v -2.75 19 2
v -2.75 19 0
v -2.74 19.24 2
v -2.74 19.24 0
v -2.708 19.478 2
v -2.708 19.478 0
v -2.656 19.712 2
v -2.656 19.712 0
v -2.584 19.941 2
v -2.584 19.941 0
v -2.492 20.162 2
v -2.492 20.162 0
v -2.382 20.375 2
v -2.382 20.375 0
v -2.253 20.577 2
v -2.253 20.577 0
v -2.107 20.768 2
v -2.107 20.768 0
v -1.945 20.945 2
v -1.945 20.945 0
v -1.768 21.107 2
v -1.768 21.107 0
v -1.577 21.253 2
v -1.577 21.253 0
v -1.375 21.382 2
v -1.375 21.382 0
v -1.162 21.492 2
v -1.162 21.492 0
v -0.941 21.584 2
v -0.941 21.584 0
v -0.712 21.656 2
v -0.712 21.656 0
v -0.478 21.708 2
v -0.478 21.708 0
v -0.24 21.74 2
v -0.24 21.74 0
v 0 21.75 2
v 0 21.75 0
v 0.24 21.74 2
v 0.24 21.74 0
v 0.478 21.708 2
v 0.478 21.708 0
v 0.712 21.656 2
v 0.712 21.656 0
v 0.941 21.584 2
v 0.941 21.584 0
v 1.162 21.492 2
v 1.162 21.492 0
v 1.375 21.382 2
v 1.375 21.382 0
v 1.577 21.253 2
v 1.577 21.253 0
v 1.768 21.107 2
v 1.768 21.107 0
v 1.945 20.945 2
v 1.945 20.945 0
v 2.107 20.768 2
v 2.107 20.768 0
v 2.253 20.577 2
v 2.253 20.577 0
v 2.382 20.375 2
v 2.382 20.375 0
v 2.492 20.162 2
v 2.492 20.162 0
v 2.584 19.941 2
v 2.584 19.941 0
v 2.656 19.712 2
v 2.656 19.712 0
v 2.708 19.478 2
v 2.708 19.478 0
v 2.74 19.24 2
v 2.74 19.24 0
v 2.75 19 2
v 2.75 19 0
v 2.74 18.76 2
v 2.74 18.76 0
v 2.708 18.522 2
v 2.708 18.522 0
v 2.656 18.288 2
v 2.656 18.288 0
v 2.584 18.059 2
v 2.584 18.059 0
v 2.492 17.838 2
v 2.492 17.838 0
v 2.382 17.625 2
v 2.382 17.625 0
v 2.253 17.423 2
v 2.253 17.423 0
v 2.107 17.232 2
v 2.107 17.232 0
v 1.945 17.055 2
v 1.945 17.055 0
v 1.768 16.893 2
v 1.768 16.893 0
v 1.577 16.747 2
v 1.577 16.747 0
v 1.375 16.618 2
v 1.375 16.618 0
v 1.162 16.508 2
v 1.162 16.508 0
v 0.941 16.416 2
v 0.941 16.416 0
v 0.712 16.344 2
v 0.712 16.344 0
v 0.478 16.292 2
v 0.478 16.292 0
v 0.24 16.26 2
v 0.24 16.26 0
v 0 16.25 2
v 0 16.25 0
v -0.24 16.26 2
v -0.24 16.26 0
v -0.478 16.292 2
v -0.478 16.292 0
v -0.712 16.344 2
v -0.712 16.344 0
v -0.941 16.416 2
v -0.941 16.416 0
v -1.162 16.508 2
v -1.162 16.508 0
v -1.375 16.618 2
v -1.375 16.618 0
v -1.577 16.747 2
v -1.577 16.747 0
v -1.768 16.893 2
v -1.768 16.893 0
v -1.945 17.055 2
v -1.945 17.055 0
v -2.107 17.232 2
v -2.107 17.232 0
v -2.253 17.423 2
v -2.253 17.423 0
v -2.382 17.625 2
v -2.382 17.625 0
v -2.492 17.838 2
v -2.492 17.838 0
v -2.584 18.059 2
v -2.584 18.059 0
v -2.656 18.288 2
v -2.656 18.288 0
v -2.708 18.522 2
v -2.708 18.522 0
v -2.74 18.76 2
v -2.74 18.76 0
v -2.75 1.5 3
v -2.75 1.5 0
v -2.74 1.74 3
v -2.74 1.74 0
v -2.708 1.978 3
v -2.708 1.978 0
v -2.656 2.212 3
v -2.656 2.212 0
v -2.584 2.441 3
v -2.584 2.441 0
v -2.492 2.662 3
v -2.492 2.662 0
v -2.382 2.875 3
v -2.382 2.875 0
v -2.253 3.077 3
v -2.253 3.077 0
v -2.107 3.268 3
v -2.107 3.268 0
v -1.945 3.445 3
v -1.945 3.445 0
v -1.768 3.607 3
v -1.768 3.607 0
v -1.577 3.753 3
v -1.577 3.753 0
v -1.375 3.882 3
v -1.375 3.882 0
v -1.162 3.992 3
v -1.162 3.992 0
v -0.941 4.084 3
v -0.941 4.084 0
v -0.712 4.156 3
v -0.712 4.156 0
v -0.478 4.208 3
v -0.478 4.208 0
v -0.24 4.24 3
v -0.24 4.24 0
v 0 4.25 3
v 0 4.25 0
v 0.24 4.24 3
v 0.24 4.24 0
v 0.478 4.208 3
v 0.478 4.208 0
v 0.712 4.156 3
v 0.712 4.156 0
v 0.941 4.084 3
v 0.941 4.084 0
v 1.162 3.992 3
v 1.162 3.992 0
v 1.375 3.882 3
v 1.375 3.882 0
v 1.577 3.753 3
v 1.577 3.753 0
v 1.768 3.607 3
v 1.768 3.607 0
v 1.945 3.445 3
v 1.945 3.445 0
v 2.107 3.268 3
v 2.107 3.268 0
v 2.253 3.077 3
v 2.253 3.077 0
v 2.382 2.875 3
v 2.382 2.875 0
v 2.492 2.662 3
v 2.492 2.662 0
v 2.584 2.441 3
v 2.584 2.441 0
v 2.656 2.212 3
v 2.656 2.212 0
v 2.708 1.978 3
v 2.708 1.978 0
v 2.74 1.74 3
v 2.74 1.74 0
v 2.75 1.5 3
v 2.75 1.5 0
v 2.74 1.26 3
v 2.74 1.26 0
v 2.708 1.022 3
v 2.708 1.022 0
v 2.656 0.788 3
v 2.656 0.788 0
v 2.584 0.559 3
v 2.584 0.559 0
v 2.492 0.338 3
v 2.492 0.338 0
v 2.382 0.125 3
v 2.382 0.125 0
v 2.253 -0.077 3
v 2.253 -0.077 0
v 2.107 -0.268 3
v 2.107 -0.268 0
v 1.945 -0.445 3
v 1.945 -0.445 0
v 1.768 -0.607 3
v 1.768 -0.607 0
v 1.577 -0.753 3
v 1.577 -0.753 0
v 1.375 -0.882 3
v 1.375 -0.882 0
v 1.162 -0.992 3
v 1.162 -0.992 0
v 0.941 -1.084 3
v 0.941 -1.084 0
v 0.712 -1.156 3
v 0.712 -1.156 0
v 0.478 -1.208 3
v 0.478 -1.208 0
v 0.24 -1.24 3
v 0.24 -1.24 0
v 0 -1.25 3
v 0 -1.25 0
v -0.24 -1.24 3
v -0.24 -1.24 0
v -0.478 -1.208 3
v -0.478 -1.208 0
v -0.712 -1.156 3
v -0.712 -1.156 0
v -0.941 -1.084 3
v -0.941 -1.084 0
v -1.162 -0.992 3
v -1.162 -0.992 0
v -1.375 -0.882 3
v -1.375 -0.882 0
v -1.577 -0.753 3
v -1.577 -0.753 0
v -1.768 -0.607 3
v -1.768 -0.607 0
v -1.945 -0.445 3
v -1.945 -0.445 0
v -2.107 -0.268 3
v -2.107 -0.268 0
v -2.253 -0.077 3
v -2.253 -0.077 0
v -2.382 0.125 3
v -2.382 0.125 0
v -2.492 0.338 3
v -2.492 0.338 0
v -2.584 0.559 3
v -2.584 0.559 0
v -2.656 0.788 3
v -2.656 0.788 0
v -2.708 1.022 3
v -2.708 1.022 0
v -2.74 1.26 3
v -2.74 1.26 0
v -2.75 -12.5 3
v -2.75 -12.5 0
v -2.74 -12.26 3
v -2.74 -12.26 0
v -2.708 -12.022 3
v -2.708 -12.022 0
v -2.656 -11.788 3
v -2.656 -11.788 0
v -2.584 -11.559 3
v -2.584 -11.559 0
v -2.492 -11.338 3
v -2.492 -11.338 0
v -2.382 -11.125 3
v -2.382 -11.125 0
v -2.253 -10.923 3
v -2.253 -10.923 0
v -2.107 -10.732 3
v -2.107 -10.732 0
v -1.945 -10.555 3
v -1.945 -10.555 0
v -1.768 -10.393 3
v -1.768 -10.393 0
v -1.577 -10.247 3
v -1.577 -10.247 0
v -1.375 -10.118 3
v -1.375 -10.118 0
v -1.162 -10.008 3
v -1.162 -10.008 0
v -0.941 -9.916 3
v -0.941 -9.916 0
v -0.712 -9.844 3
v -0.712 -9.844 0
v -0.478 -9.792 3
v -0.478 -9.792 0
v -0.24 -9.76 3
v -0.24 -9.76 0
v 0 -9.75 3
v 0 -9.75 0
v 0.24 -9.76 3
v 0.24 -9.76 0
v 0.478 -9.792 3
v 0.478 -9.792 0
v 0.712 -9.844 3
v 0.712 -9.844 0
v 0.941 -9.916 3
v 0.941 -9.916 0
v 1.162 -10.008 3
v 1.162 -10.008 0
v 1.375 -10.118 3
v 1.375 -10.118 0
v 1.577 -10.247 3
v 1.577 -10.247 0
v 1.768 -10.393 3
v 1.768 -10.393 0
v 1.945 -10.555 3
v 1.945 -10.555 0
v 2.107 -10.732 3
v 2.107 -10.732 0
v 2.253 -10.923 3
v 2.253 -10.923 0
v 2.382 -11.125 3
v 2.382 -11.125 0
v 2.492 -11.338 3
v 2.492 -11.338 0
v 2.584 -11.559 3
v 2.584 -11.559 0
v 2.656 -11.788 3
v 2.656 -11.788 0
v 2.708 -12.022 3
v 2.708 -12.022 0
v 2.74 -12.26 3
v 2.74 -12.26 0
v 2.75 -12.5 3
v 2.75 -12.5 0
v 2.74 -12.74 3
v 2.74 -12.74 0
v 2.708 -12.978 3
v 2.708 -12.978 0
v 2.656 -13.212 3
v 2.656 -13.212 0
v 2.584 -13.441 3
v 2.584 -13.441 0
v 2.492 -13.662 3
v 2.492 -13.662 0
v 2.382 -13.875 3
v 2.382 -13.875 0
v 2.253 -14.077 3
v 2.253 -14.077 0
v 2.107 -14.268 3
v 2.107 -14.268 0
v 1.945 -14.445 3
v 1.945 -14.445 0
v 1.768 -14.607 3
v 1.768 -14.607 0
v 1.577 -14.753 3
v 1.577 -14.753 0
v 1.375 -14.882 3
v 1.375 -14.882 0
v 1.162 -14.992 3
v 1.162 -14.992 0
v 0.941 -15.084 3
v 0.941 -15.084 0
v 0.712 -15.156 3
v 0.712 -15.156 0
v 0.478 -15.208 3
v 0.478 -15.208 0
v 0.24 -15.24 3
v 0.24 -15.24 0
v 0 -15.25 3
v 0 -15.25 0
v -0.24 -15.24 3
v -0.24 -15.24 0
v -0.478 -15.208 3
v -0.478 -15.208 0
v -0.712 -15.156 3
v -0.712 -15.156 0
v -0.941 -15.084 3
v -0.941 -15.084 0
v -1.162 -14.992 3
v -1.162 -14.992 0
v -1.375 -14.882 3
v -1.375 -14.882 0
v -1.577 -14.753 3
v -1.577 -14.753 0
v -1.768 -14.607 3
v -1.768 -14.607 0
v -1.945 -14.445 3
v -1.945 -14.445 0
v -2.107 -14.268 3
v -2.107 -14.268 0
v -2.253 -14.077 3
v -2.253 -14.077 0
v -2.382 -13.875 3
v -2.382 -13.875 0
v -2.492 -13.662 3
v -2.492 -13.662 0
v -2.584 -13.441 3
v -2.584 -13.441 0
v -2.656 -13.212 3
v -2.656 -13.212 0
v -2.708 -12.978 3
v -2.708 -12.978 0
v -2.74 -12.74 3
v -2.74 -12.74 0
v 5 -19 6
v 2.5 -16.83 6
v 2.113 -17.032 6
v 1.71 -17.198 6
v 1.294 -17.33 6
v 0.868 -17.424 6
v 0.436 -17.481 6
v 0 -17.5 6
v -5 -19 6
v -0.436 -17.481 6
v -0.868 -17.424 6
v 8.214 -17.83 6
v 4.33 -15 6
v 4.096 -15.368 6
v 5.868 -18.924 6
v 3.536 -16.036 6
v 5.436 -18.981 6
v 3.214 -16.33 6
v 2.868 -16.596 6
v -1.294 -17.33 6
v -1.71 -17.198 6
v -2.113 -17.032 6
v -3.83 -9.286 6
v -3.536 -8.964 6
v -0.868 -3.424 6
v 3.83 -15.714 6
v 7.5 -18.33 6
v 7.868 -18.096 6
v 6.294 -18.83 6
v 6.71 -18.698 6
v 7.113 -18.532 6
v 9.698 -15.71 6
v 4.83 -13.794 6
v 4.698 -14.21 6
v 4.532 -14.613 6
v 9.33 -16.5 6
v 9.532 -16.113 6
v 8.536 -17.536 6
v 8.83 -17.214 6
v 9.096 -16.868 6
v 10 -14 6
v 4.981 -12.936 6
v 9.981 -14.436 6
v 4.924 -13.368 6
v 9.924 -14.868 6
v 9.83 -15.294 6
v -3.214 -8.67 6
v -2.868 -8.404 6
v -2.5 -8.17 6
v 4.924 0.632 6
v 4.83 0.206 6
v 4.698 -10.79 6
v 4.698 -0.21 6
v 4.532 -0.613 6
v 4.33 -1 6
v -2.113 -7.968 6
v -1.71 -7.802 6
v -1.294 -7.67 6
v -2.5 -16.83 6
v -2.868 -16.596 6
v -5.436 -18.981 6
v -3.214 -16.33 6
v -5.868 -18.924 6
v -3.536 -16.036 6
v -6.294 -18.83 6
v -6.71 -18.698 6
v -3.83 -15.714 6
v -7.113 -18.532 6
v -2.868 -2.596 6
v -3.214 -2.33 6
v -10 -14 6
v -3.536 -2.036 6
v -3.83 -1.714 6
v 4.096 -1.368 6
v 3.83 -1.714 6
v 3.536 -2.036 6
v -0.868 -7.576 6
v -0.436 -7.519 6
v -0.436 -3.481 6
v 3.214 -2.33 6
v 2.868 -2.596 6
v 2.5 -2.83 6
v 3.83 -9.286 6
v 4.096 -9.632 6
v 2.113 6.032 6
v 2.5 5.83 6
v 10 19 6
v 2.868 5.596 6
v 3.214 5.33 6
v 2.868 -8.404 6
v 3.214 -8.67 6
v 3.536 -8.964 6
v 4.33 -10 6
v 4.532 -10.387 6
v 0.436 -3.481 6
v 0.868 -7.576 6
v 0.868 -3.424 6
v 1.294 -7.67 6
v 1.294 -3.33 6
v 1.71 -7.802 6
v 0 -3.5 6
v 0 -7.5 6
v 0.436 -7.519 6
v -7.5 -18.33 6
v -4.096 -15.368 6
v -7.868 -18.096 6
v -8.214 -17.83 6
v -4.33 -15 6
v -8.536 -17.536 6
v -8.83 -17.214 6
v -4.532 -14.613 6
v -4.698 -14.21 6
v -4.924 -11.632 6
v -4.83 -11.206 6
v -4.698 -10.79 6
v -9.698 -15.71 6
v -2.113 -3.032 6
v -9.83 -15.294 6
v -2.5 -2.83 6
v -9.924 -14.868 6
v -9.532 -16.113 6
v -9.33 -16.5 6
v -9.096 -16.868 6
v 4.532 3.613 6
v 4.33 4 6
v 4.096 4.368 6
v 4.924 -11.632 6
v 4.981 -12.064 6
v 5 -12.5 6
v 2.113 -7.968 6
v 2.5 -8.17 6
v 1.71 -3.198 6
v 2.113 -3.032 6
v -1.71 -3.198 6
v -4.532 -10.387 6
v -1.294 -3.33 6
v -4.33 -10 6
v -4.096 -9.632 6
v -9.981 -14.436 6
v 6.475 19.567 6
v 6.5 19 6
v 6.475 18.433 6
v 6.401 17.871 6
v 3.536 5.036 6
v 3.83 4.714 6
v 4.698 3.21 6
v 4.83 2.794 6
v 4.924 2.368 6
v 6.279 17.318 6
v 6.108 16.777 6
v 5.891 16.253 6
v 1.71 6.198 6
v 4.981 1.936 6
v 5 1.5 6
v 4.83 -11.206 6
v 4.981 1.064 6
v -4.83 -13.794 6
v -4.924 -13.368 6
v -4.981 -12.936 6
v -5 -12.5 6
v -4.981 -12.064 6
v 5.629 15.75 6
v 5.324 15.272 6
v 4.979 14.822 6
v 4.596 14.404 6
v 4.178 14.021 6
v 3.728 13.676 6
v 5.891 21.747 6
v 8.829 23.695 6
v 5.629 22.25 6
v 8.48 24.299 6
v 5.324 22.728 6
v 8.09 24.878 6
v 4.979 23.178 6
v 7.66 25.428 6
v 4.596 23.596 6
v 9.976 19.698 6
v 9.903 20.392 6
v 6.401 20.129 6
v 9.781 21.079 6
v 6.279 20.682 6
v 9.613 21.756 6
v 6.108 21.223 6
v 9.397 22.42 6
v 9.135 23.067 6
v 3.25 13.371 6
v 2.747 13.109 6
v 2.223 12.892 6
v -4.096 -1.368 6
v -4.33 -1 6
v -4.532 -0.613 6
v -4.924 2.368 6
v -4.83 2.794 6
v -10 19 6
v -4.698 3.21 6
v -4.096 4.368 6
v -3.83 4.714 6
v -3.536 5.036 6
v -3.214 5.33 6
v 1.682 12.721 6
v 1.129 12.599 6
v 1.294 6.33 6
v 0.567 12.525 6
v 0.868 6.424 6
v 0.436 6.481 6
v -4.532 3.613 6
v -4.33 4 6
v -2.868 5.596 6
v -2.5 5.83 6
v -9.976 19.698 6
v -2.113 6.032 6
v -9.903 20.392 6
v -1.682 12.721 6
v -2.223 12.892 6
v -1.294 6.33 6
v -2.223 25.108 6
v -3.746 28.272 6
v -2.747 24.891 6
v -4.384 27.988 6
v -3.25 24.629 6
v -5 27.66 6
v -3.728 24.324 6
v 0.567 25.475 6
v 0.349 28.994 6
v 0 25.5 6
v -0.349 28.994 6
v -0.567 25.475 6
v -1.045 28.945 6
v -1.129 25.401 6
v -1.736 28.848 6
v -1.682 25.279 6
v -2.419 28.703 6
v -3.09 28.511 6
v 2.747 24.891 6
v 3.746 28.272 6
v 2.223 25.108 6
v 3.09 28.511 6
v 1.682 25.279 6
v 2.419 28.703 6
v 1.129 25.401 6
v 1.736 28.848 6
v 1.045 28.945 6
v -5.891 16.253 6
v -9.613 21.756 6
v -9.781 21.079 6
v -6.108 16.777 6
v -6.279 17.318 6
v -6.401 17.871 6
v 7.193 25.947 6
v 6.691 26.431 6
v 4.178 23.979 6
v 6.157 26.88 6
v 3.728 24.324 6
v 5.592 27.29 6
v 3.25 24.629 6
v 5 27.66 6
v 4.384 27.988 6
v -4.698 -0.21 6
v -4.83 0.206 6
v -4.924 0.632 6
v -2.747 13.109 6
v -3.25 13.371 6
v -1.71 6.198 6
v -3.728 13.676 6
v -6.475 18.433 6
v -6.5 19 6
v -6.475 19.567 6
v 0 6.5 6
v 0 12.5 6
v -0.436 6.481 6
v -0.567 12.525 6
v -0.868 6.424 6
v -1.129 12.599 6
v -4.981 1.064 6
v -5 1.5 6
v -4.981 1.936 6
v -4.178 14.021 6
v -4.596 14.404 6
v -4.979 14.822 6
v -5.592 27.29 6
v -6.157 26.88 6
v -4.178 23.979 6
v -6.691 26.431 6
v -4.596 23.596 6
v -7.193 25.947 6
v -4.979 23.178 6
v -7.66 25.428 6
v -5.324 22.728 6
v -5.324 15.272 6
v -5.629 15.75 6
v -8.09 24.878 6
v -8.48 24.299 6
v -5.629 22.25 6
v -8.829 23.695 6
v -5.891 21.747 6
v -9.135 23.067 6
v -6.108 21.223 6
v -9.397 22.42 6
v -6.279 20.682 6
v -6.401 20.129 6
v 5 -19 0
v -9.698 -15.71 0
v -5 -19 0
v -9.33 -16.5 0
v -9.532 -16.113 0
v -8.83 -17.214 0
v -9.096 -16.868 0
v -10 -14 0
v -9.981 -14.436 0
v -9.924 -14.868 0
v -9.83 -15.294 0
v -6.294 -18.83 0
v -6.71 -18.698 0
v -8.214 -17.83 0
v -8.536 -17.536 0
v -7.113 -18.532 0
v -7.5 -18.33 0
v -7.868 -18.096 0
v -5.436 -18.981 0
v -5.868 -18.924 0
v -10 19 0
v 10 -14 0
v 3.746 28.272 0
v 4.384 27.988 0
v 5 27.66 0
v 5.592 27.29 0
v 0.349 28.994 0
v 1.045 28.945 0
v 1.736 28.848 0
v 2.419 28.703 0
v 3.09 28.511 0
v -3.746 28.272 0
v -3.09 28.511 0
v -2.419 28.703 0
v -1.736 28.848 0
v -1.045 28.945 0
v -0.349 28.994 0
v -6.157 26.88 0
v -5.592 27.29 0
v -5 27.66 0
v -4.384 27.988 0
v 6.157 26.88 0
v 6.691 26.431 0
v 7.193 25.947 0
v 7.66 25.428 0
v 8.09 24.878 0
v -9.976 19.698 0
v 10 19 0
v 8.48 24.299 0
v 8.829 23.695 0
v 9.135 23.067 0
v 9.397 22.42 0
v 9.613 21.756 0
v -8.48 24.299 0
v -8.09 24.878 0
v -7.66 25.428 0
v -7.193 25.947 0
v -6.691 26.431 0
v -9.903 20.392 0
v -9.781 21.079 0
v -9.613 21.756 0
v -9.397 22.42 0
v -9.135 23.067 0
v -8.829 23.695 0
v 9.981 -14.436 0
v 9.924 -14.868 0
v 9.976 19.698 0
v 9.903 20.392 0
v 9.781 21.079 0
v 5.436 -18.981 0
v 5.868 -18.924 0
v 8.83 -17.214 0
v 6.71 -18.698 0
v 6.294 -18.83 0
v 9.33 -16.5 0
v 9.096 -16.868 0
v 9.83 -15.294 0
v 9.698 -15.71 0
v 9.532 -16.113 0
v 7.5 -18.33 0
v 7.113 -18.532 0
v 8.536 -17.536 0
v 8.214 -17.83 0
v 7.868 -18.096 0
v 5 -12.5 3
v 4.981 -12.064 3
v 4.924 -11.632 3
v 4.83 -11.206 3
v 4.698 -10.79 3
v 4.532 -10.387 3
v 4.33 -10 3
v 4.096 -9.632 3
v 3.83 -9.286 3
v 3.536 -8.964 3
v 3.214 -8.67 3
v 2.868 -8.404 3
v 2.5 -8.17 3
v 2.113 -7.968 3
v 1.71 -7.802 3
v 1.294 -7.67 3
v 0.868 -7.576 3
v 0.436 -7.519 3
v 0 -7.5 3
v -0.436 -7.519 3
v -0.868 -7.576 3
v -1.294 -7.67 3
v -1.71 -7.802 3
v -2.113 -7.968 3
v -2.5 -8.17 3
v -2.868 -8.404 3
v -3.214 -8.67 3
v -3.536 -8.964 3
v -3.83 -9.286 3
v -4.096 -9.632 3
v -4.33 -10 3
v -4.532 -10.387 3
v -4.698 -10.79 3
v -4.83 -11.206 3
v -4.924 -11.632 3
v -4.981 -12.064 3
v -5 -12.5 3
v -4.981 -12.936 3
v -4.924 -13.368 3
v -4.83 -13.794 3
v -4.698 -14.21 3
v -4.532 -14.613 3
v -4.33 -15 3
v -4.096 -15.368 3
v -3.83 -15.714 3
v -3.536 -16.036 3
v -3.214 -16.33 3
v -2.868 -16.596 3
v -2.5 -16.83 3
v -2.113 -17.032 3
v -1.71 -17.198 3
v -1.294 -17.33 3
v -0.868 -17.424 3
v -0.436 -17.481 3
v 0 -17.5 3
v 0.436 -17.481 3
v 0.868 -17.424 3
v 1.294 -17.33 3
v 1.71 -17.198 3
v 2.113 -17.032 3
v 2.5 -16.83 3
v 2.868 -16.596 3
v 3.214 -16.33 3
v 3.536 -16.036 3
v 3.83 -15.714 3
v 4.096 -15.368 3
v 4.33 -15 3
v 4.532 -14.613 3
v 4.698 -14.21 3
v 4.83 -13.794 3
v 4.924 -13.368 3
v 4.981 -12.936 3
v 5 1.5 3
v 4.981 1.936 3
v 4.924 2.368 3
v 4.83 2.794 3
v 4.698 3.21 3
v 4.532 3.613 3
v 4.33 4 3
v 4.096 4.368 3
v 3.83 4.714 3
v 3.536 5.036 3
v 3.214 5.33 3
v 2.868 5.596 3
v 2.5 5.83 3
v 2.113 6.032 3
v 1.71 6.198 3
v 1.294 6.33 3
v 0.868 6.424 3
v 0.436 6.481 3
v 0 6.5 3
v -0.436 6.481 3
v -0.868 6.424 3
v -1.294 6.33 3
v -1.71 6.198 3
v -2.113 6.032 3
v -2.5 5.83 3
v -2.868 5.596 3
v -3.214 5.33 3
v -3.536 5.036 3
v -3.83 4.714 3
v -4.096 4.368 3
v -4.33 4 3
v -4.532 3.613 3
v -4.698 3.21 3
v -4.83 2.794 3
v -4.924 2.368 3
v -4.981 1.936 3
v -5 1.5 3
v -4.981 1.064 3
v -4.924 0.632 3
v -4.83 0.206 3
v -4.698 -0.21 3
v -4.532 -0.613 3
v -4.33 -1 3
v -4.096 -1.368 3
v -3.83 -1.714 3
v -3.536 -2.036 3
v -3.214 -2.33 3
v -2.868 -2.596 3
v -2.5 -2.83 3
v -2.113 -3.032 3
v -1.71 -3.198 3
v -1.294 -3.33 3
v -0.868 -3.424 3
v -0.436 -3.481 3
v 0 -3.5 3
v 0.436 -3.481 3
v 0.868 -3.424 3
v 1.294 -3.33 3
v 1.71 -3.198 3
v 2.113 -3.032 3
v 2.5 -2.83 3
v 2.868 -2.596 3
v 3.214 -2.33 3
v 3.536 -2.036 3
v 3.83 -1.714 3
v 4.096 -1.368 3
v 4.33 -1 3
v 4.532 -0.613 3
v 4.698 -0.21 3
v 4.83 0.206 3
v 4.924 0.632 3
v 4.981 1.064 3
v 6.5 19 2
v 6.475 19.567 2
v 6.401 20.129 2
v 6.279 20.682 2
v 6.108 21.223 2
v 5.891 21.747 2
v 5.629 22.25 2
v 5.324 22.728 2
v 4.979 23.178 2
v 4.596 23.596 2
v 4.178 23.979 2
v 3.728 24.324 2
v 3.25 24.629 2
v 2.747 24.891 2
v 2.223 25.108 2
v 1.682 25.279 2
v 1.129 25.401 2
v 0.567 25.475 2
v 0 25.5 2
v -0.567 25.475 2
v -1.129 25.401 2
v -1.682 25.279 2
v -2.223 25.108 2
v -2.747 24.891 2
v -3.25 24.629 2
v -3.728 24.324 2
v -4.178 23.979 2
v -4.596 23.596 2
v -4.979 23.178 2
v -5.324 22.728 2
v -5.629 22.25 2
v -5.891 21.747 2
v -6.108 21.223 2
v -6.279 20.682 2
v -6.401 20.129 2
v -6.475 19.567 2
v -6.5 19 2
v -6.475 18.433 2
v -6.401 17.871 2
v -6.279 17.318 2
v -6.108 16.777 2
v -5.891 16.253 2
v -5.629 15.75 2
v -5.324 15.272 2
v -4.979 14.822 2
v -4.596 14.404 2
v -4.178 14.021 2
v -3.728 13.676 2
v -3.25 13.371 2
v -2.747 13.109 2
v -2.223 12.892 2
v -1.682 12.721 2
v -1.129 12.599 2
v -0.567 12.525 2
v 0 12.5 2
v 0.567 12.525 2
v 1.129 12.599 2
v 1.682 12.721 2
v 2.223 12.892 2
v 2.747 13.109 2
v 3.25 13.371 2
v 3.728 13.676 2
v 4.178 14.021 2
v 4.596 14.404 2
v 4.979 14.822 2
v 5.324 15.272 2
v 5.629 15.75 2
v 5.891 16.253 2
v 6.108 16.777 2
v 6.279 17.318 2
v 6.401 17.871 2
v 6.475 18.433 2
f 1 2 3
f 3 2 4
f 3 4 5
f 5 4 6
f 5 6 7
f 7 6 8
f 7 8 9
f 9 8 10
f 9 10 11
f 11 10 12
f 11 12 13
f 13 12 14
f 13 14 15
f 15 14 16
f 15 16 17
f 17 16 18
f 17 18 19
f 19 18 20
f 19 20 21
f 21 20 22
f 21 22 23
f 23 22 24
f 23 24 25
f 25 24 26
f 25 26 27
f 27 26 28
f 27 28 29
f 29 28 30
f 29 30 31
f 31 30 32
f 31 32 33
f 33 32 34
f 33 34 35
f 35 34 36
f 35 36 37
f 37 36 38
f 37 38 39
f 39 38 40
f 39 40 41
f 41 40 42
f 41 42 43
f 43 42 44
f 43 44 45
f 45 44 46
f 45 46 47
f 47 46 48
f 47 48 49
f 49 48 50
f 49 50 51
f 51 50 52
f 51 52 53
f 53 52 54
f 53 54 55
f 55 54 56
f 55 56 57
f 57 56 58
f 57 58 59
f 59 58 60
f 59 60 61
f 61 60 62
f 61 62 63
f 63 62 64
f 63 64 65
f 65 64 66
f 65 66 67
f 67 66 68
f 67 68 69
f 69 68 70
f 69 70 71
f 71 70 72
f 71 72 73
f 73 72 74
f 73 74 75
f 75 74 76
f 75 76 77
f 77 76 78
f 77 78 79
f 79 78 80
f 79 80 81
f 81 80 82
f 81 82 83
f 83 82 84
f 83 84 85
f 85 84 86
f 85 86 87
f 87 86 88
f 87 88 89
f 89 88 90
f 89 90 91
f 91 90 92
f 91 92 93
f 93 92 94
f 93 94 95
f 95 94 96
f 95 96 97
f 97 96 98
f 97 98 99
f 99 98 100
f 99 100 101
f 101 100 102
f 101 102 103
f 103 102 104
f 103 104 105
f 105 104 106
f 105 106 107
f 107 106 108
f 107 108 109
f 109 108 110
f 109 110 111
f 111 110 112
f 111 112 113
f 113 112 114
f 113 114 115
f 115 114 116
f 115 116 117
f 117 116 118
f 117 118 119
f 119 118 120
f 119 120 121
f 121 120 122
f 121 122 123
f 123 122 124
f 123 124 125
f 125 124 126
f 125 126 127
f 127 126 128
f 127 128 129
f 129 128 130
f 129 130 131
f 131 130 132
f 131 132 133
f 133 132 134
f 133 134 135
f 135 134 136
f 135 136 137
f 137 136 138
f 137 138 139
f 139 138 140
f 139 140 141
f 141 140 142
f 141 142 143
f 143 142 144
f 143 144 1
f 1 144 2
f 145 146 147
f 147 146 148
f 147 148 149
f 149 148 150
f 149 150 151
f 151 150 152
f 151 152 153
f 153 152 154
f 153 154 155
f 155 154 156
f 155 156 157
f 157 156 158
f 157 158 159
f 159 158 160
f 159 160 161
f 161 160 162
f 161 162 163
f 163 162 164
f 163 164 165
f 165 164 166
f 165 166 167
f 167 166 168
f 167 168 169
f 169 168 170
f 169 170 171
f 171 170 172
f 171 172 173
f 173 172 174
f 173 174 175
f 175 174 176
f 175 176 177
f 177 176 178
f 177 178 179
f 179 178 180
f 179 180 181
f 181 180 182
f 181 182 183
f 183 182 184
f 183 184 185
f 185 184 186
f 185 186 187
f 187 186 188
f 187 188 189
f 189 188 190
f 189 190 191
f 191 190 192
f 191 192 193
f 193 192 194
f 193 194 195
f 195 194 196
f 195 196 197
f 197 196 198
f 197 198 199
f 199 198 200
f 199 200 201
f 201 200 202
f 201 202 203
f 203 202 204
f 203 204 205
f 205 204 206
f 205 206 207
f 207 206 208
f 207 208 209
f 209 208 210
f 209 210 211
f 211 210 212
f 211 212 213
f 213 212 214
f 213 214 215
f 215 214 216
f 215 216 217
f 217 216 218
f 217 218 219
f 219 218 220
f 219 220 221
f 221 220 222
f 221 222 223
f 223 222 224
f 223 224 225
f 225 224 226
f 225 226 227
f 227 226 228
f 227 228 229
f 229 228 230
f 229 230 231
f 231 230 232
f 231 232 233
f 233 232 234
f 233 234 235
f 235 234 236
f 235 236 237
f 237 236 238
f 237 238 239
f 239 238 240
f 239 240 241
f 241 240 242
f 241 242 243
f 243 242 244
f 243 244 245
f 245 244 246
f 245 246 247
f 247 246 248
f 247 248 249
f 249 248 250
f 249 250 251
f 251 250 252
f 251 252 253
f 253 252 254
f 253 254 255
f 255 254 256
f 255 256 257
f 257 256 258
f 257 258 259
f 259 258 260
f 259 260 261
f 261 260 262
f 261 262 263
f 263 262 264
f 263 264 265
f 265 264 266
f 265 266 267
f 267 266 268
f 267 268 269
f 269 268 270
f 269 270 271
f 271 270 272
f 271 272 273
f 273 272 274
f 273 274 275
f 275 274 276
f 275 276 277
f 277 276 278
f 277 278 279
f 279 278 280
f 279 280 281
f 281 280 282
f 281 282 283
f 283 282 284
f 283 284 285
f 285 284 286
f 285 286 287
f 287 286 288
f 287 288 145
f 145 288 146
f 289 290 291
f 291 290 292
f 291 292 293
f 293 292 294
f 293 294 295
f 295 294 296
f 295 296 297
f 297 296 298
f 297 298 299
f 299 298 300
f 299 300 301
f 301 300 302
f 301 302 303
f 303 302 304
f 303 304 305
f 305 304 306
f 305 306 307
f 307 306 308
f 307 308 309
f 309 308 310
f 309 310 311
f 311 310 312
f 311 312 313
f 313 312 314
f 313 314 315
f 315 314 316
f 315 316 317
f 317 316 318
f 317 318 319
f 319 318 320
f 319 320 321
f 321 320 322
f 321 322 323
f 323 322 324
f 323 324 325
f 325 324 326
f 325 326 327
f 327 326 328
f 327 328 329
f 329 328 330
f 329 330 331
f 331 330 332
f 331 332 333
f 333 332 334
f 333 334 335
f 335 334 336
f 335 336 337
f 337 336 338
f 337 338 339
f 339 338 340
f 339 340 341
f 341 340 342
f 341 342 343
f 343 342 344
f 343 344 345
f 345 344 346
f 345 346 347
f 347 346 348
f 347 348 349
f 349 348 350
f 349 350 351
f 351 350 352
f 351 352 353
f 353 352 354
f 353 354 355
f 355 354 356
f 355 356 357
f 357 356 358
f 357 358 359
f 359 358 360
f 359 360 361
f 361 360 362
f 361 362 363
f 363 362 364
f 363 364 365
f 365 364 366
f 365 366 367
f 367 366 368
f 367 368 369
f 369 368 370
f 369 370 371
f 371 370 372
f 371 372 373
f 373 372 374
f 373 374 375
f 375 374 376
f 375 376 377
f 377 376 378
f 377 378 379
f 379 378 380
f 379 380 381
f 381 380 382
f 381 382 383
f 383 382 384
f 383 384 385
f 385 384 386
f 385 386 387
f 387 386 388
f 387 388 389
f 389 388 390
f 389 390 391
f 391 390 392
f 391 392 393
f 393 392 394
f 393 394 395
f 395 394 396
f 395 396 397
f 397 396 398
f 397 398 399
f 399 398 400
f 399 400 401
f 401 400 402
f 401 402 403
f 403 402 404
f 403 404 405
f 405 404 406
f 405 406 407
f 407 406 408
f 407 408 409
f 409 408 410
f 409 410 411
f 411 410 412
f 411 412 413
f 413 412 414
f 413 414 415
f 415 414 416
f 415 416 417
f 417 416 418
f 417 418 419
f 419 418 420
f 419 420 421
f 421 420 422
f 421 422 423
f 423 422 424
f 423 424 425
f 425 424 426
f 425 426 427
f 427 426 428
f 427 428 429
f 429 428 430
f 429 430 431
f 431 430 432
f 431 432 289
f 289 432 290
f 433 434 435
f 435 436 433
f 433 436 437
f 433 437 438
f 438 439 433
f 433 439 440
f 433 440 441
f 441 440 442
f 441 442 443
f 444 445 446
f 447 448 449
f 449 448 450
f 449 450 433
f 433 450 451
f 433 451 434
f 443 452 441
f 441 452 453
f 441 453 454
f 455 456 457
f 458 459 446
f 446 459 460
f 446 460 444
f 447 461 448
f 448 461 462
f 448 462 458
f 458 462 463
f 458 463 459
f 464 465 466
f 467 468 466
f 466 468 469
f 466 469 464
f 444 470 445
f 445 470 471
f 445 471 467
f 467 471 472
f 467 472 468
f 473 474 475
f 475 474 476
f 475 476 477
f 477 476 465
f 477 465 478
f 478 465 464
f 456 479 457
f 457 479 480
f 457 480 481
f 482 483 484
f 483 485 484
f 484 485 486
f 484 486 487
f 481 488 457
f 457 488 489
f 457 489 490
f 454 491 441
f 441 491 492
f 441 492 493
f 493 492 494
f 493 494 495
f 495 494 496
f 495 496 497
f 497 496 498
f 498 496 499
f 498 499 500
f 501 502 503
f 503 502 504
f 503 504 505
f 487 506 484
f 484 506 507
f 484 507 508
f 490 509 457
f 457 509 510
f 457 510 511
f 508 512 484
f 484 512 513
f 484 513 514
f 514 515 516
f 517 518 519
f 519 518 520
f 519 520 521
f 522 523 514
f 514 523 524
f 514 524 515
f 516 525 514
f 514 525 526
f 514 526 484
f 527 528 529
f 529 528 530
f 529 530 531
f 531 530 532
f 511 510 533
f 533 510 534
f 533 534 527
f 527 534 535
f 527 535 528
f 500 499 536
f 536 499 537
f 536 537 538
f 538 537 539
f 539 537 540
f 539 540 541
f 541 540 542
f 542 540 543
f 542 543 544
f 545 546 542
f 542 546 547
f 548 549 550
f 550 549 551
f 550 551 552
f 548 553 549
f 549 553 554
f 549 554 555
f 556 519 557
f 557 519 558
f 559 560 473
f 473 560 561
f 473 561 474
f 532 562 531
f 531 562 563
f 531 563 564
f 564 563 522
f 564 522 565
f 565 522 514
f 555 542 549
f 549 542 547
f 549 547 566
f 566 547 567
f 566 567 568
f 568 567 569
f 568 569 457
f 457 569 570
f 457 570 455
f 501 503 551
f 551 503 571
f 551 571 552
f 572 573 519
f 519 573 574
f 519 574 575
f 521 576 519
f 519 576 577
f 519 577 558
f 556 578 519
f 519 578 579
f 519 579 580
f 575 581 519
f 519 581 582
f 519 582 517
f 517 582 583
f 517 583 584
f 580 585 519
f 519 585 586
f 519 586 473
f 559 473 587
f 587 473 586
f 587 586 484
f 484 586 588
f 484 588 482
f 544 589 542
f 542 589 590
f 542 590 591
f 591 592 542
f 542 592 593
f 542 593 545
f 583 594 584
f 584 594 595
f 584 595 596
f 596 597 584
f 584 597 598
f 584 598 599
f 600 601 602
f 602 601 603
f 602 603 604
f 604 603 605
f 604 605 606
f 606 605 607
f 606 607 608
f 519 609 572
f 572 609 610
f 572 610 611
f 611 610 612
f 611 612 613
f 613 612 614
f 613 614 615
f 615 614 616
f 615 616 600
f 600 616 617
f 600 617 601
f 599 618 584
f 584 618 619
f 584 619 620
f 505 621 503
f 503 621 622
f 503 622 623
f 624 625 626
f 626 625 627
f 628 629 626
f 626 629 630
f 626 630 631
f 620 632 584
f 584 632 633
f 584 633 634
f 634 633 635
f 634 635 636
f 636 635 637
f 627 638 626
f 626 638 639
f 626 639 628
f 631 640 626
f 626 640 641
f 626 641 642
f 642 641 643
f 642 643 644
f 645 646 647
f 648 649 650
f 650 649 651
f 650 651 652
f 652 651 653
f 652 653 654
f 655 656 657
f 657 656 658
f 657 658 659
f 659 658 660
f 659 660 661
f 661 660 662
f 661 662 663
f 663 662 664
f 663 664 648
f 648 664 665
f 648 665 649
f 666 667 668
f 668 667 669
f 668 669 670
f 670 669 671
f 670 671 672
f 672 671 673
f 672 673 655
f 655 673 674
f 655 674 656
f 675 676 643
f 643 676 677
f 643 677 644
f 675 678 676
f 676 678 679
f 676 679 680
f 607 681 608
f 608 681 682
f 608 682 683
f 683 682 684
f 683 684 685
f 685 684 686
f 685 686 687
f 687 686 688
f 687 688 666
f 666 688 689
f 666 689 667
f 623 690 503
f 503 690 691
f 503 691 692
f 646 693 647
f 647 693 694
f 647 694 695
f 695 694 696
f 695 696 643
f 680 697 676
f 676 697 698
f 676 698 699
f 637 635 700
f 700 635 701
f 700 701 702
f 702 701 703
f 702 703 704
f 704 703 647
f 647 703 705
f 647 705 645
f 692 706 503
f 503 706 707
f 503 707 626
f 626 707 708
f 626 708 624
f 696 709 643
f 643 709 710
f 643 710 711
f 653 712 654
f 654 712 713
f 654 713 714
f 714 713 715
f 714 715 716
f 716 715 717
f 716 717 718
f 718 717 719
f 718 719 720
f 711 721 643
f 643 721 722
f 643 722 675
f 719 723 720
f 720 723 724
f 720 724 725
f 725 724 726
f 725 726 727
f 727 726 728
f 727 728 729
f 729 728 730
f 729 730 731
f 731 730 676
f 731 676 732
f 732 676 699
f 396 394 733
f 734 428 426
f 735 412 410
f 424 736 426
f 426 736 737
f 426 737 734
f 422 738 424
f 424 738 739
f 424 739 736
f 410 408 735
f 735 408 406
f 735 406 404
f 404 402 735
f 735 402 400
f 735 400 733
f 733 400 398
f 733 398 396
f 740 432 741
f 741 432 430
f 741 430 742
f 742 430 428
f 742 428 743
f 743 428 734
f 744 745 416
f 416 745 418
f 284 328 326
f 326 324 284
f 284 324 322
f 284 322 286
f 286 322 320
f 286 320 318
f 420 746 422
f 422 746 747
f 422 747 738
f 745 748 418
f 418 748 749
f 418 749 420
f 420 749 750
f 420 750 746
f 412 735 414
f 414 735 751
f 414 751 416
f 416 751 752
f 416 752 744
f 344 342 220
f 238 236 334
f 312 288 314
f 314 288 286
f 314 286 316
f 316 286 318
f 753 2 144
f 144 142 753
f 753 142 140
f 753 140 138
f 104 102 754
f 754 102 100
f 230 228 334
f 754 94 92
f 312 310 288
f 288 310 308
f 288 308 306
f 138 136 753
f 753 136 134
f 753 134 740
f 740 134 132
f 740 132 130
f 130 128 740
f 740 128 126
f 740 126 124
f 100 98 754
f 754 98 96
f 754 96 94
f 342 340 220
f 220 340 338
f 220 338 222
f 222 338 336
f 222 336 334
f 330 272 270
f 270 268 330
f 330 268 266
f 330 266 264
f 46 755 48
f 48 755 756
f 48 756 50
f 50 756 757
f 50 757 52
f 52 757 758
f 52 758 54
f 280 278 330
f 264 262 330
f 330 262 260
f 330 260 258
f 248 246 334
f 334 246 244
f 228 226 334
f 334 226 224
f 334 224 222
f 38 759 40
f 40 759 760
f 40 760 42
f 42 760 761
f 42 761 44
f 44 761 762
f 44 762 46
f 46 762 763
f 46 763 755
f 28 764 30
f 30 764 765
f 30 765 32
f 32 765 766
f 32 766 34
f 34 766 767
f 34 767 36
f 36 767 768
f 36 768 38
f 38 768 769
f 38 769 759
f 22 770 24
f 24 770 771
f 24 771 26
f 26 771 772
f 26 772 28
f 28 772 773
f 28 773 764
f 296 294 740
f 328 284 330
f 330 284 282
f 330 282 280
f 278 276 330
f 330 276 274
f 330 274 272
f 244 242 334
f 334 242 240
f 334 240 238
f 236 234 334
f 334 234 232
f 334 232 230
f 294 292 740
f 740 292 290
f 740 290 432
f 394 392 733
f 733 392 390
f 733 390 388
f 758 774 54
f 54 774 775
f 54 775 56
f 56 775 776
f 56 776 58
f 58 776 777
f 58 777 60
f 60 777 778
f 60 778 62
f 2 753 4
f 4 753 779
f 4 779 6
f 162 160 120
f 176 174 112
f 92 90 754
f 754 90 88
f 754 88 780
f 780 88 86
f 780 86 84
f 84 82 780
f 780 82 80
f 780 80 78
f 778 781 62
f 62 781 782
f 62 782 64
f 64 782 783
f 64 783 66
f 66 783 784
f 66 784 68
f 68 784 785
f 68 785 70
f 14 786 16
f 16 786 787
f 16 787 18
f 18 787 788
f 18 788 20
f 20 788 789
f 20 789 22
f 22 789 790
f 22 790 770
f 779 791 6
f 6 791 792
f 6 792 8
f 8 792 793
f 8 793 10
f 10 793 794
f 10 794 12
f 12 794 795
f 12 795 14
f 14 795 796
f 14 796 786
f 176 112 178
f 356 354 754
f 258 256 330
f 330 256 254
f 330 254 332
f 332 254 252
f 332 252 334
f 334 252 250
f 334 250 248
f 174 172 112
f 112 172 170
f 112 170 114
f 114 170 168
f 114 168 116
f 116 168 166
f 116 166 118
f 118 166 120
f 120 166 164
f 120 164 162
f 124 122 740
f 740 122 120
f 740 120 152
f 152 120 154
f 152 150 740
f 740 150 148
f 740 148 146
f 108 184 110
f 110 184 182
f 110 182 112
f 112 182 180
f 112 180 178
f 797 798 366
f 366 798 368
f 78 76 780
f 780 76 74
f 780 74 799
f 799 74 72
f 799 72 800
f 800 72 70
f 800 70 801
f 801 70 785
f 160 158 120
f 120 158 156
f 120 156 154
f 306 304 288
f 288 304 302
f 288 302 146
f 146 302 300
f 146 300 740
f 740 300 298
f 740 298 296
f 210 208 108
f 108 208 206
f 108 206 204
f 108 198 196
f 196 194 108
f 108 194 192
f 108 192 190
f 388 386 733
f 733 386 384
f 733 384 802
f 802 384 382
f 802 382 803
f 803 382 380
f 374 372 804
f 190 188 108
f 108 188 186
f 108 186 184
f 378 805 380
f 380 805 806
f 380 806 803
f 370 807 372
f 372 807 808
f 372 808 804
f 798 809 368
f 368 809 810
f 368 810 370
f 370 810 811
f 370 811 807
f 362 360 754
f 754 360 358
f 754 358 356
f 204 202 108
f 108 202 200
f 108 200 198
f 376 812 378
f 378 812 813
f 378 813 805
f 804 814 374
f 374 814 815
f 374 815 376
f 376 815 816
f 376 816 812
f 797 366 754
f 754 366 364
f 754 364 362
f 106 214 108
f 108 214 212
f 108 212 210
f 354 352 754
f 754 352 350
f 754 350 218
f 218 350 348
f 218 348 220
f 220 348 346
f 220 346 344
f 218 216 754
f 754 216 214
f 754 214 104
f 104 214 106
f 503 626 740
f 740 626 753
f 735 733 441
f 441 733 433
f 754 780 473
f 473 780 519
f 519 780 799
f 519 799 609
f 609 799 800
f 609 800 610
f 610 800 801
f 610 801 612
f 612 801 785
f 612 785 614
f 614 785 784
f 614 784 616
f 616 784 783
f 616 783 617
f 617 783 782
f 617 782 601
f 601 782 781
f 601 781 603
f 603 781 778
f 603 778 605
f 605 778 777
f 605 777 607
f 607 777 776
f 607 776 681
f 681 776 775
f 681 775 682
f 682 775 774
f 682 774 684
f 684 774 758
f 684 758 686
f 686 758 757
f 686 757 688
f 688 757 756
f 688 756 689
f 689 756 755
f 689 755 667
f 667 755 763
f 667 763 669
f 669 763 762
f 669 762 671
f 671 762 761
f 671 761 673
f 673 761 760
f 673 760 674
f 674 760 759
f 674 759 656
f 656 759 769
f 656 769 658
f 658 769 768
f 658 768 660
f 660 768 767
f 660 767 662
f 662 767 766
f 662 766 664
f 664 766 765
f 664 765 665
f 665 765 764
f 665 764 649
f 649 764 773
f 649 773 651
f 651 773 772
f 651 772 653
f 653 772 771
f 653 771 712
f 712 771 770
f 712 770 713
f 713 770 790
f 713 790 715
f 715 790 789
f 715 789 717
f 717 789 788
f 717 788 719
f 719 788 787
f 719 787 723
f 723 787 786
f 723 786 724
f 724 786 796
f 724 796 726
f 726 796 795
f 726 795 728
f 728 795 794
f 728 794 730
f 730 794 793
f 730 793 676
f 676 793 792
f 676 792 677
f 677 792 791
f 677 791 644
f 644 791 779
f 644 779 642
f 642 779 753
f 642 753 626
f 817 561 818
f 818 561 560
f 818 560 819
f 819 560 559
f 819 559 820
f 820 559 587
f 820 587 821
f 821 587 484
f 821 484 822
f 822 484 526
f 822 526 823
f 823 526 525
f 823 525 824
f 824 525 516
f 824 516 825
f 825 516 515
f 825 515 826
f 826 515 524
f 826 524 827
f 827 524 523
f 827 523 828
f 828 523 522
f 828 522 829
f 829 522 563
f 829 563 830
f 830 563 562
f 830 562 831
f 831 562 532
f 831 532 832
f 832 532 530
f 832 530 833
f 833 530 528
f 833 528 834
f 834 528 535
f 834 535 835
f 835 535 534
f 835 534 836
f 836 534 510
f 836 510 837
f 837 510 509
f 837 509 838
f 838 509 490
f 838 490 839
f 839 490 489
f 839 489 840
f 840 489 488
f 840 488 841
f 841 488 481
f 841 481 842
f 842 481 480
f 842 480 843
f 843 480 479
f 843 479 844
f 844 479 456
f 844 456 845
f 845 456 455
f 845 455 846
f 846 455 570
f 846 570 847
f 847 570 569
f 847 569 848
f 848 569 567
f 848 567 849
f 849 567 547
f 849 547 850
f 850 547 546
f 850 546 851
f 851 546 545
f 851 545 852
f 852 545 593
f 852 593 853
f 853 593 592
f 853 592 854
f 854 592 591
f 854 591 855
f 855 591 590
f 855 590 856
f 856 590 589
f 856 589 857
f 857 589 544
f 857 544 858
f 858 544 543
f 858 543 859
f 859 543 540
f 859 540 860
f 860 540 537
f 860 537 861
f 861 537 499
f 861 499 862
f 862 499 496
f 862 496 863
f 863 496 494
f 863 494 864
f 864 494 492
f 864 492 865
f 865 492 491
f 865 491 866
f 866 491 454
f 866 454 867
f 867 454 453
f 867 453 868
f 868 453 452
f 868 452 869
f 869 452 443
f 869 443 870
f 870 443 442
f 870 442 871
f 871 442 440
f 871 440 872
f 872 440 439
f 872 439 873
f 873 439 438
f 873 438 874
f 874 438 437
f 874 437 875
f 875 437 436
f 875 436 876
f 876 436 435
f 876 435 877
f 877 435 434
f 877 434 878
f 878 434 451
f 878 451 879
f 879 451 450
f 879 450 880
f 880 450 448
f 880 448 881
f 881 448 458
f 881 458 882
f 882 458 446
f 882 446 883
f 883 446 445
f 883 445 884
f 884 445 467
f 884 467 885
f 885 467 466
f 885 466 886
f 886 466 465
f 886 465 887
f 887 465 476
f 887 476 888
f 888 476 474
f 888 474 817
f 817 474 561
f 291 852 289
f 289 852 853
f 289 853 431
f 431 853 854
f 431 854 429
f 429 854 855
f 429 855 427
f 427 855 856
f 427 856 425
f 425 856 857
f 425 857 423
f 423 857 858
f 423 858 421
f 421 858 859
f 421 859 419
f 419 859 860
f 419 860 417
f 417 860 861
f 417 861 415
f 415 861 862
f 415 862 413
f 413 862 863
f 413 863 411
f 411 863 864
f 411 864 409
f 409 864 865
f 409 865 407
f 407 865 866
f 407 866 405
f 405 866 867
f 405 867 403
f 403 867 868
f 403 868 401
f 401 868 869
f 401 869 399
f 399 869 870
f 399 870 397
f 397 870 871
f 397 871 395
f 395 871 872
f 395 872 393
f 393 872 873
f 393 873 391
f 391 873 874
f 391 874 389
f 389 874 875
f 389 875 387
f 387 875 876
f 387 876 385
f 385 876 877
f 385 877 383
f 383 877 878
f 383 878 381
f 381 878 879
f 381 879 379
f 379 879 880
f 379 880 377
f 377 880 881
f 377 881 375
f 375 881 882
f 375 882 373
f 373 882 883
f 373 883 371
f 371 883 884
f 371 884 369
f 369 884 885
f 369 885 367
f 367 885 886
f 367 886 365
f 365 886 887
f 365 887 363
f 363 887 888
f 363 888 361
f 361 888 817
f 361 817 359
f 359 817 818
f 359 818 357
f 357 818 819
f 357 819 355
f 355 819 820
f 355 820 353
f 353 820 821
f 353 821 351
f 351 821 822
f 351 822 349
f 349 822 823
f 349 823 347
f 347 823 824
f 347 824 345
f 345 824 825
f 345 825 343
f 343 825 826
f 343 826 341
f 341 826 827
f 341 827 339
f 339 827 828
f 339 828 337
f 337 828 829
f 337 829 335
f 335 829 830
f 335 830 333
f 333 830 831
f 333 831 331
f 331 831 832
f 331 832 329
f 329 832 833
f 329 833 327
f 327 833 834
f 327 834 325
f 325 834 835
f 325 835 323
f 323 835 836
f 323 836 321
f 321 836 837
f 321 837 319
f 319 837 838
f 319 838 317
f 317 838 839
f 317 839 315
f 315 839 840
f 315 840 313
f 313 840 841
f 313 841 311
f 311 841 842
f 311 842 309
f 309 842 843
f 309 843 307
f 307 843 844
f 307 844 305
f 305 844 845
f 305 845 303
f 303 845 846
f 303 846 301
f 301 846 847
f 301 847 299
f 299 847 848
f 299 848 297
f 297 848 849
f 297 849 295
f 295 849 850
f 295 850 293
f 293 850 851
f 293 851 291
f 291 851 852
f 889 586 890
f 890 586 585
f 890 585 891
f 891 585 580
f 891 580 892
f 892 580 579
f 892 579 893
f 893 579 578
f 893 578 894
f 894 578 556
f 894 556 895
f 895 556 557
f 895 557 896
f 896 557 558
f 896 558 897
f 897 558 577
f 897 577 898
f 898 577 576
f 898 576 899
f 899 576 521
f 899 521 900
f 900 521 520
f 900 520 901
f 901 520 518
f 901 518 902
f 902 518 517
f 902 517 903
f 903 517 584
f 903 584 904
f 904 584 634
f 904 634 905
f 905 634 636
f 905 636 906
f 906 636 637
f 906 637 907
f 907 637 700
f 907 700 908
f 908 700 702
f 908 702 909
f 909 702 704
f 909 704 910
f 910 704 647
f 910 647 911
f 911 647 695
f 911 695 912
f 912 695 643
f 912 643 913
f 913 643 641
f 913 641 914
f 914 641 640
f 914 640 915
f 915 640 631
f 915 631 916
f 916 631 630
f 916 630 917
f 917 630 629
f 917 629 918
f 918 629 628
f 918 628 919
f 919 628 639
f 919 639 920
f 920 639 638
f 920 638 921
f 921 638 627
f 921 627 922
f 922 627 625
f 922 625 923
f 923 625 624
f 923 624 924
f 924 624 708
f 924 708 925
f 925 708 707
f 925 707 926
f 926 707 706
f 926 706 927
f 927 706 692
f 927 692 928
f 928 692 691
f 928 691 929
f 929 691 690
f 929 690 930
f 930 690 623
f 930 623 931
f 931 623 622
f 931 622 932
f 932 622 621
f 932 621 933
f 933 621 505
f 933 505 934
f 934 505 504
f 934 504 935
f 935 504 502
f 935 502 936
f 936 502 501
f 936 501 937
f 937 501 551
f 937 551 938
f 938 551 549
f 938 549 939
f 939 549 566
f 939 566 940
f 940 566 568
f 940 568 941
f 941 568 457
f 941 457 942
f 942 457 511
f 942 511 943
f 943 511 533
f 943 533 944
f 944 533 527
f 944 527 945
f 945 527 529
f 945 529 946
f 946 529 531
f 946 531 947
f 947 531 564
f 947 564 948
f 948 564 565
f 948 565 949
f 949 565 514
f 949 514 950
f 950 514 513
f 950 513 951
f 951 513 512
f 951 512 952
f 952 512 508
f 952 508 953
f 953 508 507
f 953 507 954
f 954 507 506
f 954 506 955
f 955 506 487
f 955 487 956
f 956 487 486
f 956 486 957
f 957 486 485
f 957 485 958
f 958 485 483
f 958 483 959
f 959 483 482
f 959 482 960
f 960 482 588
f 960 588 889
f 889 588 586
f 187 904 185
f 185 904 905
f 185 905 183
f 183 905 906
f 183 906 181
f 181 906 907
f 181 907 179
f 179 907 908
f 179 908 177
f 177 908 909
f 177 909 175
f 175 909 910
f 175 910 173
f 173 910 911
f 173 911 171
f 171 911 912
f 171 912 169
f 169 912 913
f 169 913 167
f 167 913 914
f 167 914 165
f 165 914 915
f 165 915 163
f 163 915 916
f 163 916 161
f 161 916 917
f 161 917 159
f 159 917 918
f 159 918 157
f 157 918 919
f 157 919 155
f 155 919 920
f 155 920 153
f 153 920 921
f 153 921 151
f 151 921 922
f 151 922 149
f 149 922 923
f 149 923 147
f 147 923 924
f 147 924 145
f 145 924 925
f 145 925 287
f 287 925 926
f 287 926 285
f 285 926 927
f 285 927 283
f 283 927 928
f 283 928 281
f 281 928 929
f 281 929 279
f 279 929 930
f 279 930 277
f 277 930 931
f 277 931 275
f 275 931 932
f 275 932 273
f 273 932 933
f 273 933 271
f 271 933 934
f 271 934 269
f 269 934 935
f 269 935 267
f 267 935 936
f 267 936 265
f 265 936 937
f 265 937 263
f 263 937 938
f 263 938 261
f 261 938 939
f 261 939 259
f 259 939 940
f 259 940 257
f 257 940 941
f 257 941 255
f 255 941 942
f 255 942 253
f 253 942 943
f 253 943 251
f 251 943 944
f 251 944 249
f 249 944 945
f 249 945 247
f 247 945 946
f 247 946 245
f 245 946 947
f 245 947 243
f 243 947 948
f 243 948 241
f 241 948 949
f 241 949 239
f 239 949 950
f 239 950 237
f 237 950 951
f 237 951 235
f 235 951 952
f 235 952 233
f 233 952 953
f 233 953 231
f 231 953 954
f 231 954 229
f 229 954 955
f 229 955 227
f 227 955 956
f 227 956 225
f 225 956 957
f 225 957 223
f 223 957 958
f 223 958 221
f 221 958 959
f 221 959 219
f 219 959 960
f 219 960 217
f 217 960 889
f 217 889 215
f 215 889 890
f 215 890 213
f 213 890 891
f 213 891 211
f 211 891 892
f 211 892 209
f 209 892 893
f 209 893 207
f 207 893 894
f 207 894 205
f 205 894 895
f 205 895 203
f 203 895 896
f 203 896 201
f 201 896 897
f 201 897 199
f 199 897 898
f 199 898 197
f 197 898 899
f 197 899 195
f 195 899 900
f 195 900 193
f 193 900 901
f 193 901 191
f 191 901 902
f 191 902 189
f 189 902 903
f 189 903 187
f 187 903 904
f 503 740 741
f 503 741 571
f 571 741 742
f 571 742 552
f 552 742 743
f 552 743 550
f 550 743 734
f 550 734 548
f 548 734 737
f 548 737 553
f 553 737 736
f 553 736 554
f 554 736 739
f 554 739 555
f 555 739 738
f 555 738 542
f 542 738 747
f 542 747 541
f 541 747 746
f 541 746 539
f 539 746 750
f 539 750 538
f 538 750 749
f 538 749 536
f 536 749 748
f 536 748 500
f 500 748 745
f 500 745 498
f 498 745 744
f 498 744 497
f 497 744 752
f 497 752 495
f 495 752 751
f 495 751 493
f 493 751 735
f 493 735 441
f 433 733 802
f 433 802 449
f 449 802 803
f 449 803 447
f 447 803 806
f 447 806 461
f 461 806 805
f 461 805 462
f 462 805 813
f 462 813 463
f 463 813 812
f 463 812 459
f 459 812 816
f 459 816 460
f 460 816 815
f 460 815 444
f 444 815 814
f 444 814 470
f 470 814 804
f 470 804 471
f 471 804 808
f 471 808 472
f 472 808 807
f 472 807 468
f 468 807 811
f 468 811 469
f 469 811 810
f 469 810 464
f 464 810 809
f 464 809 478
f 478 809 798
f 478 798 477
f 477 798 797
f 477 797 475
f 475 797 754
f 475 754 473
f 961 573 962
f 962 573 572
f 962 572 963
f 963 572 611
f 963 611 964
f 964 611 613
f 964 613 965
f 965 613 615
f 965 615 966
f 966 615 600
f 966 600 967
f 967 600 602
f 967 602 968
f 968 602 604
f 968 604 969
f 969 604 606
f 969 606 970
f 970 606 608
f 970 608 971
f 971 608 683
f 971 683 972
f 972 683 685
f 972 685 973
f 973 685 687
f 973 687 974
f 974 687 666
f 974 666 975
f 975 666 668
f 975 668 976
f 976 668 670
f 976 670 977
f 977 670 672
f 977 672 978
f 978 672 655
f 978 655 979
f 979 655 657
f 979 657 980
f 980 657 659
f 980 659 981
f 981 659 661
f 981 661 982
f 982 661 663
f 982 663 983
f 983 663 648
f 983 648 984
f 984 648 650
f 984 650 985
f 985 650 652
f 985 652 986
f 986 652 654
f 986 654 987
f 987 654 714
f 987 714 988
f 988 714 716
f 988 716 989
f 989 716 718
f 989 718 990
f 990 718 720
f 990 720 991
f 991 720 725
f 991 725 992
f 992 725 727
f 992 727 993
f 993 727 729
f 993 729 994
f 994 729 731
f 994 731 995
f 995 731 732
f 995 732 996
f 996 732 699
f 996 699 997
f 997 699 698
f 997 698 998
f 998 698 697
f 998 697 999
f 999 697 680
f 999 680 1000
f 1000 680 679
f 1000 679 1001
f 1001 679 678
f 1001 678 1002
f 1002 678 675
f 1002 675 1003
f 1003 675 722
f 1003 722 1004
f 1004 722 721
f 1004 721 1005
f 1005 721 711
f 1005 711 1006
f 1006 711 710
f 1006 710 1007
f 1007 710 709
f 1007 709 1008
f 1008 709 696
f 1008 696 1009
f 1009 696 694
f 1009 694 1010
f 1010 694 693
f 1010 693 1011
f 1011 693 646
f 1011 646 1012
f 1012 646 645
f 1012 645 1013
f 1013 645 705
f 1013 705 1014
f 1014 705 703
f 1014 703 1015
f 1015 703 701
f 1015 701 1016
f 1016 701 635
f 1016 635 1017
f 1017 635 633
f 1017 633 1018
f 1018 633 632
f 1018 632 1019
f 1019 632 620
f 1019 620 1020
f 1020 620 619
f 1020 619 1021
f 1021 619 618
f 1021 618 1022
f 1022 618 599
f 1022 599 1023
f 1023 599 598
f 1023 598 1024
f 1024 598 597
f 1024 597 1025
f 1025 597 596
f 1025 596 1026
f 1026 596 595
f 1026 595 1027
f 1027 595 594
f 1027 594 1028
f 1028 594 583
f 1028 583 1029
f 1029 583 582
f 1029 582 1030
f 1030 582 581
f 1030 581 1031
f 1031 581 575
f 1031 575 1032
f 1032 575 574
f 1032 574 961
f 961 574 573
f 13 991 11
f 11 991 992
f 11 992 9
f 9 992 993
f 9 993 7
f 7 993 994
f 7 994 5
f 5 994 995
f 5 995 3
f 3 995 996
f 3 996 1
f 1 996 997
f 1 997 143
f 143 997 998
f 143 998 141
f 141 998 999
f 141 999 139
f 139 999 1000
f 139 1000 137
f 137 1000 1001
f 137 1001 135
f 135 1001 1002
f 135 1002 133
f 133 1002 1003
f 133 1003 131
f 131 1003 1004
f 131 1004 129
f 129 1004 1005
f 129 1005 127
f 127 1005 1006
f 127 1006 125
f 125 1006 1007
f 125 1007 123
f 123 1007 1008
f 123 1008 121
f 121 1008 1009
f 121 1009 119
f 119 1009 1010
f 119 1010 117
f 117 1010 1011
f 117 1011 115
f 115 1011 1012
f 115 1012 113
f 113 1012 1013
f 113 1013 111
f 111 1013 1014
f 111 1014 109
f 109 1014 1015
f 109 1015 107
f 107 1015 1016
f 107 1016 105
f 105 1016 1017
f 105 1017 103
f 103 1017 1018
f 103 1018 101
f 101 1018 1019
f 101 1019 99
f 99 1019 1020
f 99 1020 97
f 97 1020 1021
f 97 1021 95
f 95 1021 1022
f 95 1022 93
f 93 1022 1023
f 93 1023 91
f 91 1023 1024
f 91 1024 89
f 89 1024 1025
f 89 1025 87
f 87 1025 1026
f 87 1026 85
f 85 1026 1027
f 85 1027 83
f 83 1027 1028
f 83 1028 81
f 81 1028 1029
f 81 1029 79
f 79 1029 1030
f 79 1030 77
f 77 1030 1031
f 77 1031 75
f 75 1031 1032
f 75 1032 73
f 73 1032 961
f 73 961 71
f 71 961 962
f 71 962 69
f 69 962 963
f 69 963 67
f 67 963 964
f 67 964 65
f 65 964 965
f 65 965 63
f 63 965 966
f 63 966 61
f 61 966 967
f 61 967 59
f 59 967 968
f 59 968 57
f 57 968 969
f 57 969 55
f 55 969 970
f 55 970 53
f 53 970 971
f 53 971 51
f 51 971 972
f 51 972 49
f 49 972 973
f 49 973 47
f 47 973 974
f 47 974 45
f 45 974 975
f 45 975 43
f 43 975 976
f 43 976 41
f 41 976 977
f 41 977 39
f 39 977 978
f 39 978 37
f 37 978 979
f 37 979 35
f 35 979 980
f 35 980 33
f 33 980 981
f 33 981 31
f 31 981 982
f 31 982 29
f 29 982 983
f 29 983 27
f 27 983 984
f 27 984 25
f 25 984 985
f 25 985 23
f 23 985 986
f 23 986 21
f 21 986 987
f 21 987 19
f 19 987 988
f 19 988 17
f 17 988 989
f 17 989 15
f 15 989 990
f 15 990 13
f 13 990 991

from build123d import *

# Parameters (mm, degrees)
SKETCH_2_R          = 2.75
EXTRUDE_1_DEPTH     = 6
SKETCH_3_R          = 5
CUT_EXTRUDE_1_DEPTH = 3
FILLET_1_R          = 5
SKETCH_4_R          = 6.5
CUT_EXTRUDE_2_DEPTH = 4


with BuildPart() as part:
    # Эскиз2 → Бобышка-Вытянуть1 (new body)
    with BuildSketch(Plane.XY):
        with BuildLine():
            Line((10, 19), (10, -19))
            Line((10, -19), (-10, -19))
            Line((-10, -19), (-10, 19))
            ThreePointArc((-10, 19), (0, 29), (10, 19))
        make_face()
        with Locations((0, 1.5)):
            Circle(SKETCH_2_R, mode=Mode.SUBTRACT)
        with Locations((0, -12.5)):
            Circle(SKETCH_2_R, mode=Mode.SUBTRACT)
        with Locations((0, 19)):
            Circle(SKETCH_2_R, mode=Mode.SUBTRACT)
    extrude(amount=EXTRUDE_1_DEPTH)

    # Эскиз3 → Вырез-Вытянуть1 (cut)
    with BuildSketch(Plane.XY.offset(6)):
        with Locations((0, 1.5)):
            Circle(SKETCH_3_R)
        with Locations((0, -12.5)):
            Circle(SKETCH_3_R)
    extrude(amount=-CUT_EXTRUDE_1_DEPTH, mode=Mode.SUBTRACT)

    # Скругление1
    fillet_1_edges = [part.edges().sort_by_distance(p)[0] for p in [
        (10, -19, 3),
        (-10, -19, 3),
    ]]
    fillet(fillet_1_edges, radius=FILLET_1_R)

    # Эскиз4 → Вырез-Вытянуть2 (cut)
    with BuildSketch(Plane.XY.offset(6)):
        with Locations((0, 19)):
            Circle(SKETCH_4_R)
    extrude(amount=-CUT_EXTRUDE_2_DEPTH, mode=Mode.SUBTRACT)


solid = part.part
